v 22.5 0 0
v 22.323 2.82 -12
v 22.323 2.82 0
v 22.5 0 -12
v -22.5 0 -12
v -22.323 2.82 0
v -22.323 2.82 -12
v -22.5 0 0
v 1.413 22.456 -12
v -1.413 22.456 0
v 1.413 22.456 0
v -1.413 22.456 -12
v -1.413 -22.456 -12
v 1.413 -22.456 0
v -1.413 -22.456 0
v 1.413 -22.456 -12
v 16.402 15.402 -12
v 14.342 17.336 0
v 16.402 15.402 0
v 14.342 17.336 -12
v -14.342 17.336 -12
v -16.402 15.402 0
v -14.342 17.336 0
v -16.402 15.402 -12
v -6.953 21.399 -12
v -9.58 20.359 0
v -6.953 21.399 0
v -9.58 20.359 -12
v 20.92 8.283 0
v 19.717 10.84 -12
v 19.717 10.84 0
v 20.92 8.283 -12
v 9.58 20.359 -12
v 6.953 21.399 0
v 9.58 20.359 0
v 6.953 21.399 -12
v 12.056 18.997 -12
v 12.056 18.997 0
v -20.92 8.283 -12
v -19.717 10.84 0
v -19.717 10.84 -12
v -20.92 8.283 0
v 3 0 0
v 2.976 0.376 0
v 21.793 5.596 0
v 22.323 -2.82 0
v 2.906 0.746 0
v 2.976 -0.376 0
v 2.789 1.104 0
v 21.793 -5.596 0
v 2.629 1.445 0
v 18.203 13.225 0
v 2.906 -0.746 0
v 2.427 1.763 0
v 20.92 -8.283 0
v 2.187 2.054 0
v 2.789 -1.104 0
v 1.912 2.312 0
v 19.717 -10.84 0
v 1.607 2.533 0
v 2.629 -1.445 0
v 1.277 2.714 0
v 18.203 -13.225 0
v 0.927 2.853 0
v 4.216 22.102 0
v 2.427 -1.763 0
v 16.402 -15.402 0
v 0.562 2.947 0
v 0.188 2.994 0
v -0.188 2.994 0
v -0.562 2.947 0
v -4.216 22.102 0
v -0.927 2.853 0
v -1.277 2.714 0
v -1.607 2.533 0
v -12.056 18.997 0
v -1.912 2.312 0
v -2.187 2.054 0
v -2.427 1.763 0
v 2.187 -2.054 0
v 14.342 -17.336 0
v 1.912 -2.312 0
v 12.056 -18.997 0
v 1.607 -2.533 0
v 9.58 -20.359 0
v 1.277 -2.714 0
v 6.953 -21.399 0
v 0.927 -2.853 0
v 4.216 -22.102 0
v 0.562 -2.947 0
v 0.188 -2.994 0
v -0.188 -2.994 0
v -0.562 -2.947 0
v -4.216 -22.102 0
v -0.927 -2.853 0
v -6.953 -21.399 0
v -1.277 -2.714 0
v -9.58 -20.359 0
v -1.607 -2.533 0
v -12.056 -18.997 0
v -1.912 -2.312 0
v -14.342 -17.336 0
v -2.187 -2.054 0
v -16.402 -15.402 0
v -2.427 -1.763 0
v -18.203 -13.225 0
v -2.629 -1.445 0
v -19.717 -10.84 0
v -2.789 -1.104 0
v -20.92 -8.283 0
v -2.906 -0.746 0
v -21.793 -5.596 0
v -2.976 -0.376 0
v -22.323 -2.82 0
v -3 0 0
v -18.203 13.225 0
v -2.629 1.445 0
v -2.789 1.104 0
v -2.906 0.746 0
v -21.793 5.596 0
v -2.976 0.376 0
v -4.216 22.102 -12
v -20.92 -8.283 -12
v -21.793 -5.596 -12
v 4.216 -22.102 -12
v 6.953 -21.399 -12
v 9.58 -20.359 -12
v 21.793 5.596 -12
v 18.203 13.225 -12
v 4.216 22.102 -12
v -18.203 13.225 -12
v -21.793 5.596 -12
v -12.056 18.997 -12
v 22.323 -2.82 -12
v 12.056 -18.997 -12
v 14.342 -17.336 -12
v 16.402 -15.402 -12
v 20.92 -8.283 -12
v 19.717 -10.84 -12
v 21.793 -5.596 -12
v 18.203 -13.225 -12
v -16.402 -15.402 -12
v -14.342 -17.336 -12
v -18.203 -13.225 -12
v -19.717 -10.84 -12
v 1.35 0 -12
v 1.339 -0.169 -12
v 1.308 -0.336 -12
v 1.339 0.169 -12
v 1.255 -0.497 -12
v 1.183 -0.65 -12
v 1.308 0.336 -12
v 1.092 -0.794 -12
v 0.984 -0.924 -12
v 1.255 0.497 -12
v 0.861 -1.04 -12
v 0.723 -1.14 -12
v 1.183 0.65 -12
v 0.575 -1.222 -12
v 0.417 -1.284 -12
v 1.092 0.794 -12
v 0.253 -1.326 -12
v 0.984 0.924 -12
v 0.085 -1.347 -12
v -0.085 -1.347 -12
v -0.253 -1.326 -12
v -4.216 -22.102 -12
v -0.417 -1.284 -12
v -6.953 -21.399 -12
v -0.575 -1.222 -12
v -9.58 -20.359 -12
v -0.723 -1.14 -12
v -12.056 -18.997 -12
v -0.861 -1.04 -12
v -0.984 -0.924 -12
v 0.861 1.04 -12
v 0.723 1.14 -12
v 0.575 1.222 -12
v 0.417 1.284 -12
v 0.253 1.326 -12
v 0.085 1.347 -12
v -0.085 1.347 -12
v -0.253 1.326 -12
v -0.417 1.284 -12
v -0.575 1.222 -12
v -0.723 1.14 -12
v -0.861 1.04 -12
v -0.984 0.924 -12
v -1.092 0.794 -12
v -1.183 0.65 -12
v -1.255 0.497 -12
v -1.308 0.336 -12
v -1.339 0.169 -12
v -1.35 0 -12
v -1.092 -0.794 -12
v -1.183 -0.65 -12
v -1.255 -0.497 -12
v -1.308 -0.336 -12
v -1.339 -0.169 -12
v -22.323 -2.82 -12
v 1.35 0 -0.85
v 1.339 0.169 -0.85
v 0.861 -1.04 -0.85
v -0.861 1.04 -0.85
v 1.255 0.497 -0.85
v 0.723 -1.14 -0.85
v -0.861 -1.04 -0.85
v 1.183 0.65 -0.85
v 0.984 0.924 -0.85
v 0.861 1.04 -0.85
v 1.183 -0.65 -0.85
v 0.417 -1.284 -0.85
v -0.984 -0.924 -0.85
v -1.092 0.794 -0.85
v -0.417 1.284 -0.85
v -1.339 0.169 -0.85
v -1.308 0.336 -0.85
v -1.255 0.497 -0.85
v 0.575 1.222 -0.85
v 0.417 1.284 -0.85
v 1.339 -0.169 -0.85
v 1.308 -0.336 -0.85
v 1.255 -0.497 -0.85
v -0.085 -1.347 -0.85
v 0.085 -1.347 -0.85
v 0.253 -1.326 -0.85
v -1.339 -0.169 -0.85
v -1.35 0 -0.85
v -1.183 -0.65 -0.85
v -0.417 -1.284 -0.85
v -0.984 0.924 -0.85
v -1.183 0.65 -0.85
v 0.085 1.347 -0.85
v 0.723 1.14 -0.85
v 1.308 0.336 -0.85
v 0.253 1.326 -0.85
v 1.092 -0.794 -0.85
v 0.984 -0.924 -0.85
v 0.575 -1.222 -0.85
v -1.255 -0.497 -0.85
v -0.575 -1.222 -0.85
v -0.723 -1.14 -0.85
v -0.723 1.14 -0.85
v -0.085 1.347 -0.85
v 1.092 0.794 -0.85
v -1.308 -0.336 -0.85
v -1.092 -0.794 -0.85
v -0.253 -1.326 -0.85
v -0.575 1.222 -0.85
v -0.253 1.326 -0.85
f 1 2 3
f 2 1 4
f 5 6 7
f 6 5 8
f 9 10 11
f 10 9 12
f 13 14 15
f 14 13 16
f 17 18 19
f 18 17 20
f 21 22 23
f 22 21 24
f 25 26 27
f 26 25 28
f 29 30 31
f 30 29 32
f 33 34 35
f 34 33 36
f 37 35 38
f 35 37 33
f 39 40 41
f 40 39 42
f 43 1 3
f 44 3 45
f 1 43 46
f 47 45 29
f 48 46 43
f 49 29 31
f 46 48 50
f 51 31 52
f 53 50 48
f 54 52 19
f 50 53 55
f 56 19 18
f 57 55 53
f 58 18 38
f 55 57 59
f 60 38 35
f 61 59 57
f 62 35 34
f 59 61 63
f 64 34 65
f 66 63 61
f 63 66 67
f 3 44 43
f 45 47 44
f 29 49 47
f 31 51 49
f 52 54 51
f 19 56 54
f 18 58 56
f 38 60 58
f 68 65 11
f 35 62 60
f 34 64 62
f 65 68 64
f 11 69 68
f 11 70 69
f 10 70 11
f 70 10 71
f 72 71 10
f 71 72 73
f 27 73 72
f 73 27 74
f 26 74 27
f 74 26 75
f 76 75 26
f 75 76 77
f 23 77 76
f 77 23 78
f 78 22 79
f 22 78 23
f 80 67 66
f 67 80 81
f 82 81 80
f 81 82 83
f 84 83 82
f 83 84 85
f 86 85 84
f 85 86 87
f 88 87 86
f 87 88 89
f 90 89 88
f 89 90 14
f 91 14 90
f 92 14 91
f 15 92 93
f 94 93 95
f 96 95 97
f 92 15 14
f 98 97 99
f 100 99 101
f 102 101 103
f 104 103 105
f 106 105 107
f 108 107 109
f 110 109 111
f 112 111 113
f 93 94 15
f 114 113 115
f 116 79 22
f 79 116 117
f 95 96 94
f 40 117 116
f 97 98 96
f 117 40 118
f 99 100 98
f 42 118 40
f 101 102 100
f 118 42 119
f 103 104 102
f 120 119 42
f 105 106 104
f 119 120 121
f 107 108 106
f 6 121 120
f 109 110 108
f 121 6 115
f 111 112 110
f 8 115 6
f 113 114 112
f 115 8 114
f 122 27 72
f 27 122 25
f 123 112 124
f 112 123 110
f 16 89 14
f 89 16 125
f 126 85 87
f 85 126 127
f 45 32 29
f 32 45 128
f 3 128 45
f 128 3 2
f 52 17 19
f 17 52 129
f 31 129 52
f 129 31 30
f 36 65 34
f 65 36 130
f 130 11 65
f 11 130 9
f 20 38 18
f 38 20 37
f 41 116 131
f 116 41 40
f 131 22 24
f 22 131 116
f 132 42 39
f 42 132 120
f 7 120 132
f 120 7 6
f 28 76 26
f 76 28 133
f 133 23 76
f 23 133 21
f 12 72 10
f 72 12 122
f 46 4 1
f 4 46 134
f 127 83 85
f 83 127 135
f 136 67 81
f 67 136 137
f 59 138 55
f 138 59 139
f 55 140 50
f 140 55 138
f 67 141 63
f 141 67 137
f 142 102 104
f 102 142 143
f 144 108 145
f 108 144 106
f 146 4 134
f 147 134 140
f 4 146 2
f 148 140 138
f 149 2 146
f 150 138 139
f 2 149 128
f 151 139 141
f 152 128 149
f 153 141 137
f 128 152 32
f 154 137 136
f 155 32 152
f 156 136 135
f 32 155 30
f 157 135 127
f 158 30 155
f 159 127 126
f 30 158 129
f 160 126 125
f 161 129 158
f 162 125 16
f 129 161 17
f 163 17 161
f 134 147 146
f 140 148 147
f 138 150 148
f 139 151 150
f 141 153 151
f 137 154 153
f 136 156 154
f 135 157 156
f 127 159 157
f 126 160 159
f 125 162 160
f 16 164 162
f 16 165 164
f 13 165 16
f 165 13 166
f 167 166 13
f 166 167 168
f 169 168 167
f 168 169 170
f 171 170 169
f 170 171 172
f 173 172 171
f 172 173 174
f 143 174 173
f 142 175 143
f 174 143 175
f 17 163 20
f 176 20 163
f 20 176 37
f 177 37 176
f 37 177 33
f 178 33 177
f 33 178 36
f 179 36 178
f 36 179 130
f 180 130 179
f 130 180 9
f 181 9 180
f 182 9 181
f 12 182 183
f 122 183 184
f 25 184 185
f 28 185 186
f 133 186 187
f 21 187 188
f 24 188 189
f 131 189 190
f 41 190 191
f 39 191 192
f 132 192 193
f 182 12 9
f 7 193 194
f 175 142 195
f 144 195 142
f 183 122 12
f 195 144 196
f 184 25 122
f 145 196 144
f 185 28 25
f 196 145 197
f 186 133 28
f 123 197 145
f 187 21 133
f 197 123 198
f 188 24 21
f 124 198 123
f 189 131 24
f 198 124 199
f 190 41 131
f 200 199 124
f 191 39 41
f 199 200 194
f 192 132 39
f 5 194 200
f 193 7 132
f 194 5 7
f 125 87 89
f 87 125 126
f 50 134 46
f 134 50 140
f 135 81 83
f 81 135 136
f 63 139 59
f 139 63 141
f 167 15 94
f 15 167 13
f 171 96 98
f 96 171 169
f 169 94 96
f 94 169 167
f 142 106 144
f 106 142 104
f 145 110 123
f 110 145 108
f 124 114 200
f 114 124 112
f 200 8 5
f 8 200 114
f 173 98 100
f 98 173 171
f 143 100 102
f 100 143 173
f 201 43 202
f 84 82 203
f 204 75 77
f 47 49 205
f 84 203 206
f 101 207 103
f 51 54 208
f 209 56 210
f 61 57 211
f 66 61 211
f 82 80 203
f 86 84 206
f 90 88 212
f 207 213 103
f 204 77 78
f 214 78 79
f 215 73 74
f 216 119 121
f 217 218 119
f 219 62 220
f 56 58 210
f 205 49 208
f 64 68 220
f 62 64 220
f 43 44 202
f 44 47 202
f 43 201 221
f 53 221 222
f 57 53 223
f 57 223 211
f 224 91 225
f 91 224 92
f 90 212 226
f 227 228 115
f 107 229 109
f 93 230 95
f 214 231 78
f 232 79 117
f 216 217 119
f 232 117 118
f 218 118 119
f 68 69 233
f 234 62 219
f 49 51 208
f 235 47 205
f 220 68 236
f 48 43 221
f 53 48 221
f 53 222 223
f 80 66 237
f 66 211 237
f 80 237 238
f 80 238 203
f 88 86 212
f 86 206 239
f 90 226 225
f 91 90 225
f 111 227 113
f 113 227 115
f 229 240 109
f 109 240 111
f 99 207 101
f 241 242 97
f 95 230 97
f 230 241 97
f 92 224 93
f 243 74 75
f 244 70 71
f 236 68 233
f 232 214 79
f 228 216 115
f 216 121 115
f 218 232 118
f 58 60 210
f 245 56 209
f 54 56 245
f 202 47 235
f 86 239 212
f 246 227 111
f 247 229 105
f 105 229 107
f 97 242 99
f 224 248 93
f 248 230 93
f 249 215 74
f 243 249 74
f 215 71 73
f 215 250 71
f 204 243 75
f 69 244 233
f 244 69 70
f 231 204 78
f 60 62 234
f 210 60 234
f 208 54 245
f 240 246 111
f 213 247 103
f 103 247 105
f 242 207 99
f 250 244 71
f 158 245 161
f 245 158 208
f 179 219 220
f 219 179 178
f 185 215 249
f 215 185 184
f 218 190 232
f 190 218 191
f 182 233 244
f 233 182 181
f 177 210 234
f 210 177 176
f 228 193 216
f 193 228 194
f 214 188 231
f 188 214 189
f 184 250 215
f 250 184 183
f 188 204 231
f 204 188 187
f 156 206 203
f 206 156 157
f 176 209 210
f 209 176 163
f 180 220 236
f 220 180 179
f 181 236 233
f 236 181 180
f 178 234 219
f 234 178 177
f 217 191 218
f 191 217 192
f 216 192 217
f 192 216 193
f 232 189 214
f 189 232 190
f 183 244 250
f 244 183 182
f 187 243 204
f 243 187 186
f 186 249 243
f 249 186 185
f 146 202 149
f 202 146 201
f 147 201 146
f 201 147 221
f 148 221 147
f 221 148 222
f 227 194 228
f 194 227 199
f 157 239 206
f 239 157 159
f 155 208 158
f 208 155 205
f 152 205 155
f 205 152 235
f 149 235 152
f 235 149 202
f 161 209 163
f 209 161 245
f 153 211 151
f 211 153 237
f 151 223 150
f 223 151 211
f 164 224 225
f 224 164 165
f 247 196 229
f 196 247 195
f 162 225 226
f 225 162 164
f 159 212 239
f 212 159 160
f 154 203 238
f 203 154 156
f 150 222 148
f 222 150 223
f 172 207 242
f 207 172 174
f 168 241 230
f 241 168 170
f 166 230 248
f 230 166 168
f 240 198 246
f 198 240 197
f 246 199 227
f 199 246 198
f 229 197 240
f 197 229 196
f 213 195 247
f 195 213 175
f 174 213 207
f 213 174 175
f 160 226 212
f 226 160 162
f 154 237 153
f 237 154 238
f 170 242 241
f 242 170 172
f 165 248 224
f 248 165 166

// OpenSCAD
$fn = 50;


difference() {
	union() {
		translate(v = [0, 0, -12.0000000000]) {
			cylinder(h = 12, r = 22.5000000000);
		}
		translate(v = [0, 0, -12.0000000000]) {
			cylinder(h = 12, r = 2.8750000000);
		}
	}
	union() {
		translate(v = [0, 0, 0]) {
			rotate(a = [0, 0, 0]) {
				difference() {
					union() {
						translate(v = [0, 0, -12.0000000000]) {
							cylinder(h = 12, r = 1.0000000000);
						}
						translate(v = [0, 0, -0.8500000000]) {
							cylinder(h = 0.8500000000, r1 = 1.3500000000, r2 = 3.0000000000);
						}
						translate(v = [0, 0, -12.0000000000]) {
							cylinder(h = 12, r = 1.3500000000);
						}
						translate(v = [0, 0, -12.0000000000]) {
							cylinder(h = 12, r = 1.0000000000);
						}
					}
					union();
				}
			}
		}
	}
}
